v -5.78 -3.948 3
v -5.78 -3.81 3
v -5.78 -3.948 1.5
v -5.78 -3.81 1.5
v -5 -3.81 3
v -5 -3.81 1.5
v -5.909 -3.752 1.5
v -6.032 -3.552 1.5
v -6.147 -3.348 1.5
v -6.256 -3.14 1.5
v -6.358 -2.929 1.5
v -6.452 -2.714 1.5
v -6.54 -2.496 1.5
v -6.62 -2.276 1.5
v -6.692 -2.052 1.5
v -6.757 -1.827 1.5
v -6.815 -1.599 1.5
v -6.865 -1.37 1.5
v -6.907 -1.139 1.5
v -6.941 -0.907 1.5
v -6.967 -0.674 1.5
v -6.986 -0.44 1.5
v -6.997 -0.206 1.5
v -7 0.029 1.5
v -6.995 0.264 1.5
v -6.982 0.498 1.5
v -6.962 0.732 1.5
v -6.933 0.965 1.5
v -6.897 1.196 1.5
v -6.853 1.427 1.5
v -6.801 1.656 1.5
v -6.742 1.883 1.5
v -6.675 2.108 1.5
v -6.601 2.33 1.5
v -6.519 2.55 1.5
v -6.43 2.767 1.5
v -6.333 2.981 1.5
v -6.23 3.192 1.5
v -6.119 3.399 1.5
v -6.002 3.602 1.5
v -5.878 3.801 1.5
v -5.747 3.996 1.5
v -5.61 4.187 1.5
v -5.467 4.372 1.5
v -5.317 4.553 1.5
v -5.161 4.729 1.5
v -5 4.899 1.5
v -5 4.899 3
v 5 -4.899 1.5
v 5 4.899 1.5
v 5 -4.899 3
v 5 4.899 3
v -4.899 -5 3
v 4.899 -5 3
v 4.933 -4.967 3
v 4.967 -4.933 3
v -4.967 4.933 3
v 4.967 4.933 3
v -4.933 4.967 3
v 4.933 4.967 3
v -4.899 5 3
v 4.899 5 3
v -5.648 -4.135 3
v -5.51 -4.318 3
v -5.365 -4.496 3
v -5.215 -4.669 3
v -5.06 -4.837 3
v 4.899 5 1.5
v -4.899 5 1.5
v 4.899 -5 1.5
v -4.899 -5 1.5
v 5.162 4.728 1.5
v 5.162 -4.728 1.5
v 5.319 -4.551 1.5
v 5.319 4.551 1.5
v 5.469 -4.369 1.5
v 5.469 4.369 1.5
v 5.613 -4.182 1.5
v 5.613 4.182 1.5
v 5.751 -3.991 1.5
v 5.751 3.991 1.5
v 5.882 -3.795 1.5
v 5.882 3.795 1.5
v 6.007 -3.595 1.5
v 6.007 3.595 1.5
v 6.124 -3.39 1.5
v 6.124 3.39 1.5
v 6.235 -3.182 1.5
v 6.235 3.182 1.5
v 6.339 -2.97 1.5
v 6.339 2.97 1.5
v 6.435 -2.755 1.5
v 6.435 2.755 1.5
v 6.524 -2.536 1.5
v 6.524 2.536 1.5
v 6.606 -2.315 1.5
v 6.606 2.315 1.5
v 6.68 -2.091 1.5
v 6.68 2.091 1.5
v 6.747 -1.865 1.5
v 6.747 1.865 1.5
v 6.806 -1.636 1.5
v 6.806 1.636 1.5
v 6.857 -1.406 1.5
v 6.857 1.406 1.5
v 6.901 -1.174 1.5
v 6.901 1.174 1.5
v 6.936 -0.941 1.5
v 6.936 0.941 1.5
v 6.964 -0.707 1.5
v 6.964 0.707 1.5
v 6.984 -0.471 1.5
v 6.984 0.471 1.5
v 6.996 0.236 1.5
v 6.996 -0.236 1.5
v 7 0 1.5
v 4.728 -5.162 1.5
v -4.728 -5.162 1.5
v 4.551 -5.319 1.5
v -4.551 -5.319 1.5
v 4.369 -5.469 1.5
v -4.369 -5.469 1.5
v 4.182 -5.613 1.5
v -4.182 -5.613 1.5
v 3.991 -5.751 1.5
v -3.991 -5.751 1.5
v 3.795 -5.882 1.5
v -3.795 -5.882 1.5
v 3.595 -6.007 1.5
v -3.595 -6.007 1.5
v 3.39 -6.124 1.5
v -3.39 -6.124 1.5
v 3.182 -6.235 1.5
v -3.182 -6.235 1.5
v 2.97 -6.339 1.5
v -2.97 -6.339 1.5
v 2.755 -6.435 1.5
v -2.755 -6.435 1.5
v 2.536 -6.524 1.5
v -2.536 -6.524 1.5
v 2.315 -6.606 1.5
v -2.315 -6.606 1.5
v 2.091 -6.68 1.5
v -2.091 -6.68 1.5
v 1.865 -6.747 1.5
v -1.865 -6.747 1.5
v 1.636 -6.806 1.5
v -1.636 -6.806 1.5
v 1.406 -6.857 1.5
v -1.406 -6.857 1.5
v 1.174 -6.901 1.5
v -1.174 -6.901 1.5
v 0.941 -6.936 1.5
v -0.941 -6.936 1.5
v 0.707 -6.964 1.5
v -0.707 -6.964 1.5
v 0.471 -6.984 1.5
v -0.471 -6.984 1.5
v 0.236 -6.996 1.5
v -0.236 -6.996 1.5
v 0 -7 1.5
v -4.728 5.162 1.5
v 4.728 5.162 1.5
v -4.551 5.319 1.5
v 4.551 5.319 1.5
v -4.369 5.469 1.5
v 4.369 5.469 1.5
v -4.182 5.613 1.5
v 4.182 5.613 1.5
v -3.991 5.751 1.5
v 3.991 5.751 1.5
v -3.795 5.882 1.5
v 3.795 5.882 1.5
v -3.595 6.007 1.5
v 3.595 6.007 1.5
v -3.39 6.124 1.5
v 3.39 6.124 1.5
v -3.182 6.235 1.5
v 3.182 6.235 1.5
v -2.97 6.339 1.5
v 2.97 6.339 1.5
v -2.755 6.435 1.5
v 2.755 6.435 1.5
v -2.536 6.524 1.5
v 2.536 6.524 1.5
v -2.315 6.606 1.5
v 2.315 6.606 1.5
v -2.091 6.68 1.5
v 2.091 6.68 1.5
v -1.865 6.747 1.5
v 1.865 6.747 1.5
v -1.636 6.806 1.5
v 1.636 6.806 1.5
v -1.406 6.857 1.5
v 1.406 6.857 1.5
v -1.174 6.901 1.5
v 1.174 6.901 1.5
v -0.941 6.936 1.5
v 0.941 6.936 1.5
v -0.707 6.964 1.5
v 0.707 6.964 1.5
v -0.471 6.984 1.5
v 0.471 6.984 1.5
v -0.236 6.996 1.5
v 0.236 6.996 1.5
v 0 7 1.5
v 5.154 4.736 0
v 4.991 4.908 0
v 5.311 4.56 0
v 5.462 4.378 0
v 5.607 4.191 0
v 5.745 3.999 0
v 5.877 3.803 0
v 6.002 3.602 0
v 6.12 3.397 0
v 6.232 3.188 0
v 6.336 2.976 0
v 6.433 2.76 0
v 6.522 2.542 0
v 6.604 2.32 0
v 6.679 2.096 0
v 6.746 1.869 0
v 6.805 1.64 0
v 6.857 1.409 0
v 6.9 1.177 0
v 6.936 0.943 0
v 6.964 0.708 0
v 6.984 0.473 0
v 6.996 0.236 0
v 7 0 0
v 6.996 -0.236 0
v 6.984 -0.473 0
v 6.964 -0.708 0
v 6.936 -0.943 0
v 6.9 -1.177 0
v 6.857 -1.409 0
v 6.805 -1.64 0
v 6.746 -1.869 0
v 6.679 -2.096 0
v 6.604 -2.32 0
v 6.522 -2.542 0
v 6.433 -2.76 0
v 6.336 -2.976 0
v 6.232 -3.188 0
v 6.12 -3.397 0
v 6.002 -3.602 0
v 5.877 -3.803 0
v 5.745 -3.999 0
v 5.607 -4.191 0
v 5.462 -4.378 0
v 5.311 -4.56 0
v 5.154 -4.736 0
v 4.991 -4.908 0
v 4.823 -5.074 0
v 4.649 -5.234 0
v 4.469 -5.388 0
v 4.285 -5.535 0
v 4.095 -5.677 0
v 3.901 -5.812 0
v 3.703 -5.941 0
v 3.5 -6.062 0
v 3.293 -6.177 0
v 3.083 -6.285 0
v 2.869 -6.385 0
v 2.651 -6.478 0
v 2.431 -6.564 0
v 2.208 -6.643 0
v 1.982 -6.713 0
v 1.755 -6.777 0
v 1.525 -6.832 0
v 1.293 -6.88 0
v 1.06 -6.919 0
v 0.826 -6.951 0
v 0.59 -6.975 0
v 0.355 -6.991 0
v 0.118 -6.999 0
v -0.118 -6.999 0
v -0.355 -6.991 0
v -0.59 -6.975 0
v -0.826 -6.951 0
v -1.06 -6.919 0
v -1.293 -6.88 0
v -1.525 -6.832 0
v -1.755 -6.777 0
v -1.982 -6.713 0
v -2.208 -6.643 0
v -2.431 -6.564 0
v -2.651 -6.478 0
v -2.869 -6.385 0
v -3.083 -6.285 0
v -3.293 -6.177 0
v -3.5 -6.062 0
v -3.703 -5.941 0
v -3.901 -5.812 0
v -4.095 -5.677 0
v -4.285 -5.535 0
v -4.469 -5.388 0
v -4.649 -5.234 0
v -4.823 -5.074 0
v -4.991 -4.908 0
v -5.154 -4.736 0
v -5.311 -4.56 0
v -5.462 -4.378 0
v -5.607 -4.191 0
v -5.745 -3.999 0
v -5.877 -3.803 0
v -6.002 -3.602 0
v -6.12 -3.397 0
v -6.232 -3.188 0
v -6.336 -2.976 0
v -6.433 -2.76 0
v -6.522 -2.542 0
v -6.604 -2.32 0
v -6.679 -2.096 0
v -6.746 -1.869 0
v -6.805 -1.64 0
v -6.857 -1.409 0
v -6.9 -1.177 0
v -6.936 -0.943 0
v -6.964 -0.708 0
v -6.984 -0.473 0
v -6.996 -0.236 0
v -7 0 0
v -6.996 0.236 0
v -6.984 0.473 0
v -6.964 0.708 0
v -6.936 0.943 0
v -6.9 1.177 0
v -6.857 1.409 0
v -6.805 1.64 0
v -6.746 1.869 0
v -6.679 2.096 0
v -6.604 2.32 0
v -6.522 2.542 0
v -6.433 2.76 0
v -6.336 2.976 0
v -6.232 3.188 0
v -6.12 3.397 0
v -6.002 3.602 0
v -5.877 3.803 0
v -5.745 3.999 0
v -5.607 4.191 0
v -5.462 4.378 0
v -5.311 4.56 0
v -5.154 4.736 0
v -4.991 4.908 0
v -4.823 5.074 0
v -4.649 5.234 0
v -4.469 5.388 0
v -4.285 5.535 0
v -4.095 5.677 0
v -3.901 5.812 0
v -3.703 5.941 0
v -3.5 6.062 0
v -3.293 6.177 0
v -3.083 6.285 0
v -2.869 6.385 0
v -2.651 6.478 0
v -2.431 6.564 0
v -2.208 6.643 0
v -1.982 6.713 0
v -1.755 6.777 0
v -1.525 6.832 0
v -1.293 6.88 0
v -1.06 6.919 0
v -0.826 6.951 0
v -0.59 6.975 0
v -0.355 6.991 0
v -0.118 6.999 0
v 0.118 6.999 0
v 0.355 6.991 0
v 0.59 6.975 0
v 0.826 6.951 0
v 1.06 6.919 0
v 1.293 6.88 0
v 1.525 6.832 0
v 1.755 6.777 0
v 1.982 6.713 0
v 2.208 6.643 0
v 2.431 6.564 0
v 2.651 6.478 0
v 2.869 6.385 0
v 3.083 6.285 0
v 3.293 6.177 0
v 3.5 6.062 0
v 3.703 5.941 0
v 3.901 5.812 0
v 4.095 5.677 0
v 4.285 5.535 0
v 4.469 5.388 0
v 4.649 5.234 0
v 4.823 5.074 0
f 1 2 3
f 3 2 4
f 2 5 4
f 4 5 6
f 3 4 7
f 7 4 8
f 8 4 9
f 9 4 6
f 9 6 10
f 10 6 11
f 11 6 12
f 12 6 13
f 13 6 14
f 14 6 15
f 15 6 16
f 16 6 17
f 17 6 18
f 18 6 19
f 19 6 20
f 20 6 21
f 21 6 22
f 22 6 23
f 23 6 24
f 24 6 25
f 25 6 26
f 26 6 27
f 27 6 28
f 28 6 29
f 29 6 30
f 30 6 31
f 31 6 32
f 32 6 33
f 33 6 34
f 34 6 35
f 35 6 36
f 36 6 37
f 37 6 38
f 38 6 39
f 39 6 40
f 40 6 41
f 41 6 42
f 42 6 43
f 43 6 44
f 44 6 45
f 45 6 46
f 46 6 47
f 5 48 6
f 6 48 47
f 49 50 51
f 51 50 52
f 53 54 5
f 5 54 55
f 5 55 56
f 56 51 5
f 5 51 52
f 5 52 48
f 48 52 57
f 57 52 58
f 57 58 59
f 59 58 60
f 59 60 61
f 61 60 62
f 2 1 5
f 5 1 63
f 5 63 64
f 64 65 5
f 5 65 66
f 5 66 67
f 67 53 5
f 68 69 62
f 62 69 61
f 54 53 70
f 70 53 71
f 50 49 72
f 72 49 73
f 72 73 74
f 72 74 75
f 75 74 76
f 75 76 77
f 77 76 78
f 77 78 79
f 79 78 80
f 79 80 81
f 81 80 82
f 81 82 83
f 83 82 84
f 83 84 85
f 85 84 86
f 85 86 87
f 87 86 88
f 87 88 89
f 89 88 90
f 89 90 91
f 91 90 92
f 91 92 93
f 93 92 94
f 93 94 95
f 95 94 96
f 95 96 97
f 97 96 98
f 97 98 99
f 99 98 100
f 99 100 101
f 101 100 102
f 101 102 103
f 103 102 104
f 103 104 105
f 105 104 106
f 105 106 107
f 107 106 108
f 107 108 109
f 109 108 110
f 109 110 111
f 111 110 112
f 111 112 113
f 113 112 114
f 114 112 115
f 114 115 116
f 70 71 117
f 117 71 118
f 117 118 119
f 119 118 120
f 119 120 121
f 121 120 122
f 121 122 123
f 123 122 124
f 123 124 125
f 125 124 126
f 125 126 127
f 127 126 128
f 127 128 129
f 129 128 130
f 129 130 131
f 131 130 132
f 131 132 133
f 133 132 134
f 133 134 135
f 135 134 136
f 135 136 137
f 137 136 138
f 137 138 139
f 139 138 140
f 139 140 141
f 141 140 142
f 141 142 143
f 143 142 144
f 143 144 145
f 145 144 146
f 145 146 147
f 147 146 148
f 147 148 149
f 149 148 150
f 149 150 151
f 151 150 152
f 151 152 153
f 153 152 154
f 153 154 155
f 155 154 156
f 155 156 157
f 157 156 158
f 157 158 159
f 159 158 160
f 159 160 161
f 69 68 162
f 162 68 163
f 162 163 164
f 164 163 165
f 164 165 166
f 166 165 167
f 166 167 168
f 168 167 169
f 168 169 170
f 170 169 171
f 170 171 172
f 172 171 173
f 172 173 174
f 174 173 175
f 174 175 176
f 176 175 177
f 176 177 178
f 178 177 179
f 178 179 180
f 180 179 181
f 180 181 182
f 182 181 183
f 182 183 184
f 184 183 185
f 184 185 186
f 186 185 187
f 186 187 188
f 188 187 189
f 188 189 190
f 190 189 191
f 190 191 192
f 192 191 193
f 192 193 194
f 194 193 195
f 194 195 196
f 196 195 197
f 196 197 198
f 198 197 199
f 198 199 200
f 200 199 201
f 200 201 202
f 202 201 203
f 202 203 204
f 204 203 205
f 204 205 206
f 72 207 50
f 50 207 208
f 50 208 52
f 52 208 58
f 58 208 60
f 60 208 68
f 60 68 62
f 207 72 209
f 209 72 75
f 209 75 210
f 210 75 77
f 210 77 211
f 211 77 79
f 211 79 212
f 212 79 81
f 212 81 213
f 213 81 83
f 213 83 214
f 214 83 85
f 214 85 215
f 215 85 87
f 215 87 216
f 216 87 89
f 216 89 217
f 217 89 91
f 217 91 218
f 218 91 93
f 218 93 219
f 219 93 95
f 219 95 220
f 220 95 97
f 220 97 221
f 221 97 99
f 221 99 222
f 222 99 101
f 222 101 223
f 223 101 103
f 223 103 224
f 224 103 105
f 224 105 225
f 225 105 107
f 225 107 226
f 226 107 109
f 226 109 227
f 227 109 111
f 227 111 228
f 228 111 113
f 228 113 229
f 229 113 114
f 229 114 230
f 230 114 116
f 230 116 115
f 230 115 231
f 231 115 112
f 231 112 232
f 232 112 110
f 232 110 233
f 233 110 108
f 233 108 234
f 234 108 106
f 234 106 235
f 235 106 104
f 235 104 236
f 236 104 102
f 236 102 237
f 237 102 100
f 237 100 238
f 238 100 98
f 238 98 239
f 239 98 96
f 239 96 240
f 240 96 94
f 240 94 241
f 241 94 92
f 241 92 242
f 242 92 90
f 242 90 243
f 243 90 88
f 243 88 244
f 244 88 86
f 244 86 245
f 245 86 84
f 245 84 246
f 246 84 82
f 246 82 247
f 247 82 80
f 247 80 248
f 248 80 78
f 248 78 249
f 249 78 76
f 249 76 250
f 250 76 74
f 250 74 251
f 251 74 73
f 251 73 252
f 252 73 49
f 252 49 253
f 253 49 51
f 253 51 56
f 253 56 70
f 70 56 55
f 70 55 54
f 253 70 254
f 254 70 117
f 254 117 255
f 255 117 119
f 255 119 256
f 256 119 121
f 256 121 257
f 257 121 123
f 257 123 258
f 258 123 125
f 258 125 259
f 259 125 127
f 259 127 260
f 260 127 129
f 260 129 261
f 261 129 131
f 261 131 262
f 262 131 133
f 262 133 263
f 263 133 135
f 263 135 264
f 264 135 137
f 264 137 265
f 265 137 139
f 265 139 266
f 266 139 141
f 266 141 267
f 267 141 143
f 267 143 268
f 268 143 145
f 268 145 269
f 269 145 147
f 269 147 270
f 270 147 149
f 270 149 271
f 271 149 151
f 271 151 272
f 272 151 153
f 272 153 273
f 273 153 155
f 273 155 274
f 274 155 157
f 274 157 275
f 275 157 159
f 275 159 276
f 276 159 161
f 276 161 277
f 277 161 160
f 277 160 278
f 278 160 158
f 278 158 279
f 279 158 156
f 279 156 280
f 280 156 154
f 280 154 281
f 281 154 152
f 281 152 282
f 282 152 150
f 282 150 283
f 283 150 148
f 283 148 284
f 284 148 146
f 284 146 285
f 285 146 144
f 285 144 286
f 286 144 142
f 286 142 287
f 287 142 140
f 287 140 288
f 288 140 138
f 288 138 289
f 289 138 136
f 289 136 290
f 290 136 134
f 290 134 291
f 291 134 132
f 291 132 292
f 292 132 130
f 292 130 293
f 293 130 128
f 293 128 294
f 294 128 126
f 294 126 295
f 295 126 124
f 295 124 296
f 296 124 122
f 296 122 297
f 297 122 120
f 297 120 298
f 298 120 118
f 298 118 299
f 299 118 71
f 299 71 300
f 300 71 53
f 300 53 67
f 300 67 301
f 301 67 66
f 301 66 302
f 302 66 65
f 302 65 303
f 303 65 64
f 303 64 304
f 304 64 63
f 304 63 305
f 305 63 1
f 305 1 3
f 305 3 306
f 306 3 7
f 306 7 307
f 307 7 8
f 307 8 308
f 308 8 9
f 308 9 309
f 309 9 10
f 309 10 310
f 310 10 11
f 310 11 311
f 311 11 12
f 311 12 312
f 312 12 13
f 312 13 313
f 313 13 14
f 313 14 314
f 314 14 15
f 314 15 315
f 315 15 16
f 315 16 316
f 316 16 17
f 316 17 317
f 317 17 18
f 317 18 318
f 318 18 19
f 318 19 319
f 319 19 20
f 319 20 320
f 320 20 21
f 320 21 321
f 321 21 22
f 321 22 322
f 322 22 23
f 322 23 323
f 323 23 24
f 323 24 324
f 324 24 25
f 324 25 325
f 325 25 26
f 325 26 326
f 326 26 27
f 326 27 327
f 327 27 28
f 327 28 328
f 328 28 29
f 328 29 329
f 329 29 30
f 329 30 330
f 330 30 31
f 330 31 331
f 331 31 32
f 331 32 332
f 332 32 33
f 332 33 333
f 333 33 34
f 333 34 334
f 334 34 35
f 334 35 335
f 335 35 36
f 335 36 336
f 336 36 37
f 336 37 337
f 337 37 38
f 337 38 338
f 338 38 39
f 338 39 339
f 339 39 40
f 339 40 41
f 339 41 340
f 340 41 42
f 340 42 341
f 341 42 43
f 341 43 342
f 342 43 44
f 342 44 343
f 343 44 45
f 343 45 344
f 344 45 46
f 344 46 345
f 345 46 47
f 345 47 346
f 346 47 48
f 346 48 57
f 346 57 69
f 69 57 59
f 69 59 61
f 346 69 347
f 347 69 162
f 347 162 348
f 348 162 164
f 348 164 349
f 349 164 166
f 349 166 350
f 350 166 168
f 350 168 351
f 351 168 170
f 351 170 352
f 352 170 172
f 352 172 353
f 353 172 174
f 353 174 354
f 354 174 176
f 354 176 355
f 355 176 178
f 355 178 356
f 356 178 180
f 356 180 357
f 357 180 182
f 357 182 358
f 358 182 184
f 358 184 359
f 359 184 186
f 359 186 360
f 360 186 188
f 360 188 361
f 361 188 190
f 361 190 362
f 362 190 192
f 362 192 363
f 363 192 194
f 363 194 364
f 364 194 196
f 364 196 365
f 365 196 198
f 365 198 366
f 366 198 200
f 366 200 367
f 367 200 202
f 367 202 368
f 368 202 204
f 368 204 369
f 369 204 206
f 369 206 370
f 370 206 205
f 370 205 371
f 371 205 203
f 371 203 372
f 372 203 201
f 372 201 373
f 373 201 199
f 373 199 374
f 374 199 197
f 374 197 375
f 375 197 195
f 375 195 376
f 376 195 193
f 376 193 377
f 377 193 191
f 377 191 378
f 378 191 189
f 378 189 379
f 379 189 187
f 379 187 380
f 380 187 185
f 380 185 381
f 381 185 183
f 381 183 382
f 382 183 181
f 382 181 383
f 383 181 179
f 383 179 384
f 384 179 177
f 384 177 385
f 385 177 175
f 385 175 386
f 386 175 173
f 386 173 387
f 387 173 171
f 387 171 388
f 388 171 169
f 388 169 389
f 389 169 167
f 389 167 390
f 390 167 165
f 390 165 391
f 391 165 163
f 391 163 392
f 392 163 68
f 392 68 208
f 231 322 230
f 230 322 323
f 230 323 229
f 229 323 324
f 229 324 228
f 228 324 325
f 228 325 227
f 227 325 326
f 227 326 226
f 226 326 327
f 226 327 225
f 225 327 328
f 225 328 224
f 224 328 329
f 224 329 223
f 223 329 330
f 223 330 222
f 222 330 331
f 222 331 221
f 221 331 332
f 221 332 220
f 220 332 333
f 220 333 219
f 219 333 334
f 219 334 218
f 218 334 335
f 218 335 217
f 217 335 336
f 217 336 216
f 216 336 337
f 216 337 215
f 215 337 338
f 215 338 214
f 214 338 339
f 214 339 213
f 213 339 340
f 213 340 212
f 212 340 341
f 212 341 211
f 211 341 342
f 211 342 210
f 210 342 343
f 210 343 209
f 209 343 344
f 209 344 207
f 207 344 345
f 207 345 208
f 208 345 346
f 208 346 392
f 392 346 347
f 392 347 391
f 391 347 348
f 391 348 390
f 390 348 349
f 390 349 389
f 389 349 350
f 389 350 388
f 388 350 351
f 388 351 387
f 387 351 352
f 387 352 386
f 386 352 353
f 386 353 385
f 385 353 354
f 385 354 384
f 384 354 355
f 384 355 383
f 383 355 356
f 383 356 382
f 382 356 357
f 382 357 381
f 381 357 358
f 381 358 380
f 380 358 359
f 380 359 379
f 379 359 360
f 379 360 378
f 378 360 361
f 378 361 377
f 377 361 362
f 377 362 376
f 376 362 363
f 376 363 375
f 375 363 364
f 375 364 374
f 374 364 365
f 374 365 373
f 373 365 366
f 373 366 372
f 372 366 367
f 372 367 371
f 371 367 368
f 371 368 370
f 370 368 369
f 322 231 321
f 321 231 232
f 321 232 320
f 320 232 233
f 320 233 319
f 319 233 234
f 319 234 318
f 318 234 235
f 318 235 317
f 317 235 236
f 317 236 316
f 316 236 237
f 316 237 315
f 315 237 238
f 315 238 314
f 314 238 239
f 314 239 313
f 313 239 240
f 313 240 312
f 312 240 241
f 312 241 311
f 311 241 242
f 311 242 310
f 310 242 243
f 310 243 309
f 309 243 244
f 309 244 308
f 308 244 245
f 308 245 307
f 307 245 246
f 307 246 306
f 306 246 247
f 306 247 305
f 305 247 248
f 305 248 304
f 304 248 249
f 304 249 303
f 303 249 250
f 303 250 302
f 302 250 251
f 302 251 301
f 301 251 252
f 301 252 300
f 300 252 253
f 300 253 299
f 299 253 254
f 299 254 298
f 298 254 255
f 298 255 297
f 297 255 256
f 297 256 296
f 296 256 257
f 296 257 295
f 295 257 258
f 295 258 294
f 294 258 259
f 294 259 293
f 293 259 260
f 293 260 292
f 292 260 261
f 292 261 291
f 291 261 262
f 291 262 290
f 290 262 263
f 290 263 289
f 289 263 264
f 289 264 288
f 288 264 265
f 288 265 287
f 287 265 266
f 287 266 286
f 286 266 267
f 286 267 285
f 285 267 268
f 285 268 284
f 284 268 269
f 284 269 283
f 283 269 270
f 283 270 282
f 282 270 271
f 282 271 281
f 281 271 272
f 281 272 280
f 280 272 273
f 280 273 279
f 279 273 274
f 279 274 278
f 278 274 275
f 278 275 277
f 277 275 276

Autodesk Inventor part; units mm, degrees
ref_plane "YZ Plane" through (0, 0, 0) normal (1, 0, 0) x (0, 1, 0)
ref_plane "XZ Plane" through (0, 0, 0) normal (0, 1, 0) x (-1, 0, 0)
ref_plane "XY Plane" through (0, 0, 0) normal (0, 0, 1) x (1, 0, 0)
sketch "Skizze1" plane through (0, 0, 0) normal (0, 0, 1) x (1, 0, 0)
  circle A0 centre (0, 0) radius 7
  line L0 (-5, 5) -> (5, 5) construction
  line L1 (5, 5) -> (5, -5) construction
  line L2 (5, -5) -> (-5, -5) construction
  line L3 (-5, -5) -> (-5, 5) construction
  line L4 (-5, 5) -> (5, -5) construction
  line L5 (5, 5) -> (-5, -5) construction
  dimension "d0" = 14
  dimension "d1" = 10
  dimension "d2" = 10
extrude "Extrusion1" add sketch "Skizze1" along normal blind 1.5
sketch "Skizze4" plane through (0, 0, 1.5) normal (0, 0, 1) x (1, 0, 0)
  circle A0 centre (0, 0) radius 7 construction
  line L0 (-5, -5) -> (5, -5)
  line L1 (5, -5) -> (5, 5)
  line L2 (5, 5) -> (-5, 5)
  line L3 (-5, 5) -> (-5, -5)
  line L4 (-5, -5) -> (5, 5) construction
  line L5 (5, -5) -> (-5, 5) construction
  dimension "d9" = 10
  dimension "d10" = 10
extrude "Extrusion3" add sketch "Skizze4" along normal blind 1.5
sketch "Skizze5" plane through (0, 0, 3) normal (0, 0, 1) x (1, 0, 0)
  circle A0 centre (0, 0) radius 7
  circle A1 centre (0, 0) radius 7.3678
extrude "Extrusion4" cut sketch "Skizze5" against normal through all
sketch "Skizze6" plane through (0, 0, 1.5) normal (0, 0, 1) x (1, 0, 0)
  arc A0 (-5.7802, -3.9484) -> (-5, -4.899) centre (0, 0) ccw
  line L0 (-5, 4.899) -> (-5, -4.899) projected
  line L1 (-5, -3.8099) -> (-5.7802, -3.8099)
  line L2 (-5.7802, -3.8099) -> (-5.7802, -3.9484)
  line L3 (-5.0692, -4.8273) -> (-5, -4.8273)
  line L4 (-5, -4.8273) -> (-5, -3.8099)
extrude "Extrusion5" add sketch "Skizze6" along normal up to surface (1.5 mm away) contours L2 L1 L0 L3 A0
sketch "Skizze7" plane through (0, 0, 3) normal (0, 0, 1) x (1, 0, 0)
  arc A0 (-5.0692, -4.8273) -> (-5, -4.899) centre (0, 0) ccw projected
  line L0 (-5, -4.8273) -> (-5, -4.899) projected
  line L1 (-5, -4.8273) -> (-5.0692, -4.8273) projected
extrude "Extrusion6" add sketch "Skizze7" against normal up to surface (1.5 mm away)
properties part number "aruco_chip"
